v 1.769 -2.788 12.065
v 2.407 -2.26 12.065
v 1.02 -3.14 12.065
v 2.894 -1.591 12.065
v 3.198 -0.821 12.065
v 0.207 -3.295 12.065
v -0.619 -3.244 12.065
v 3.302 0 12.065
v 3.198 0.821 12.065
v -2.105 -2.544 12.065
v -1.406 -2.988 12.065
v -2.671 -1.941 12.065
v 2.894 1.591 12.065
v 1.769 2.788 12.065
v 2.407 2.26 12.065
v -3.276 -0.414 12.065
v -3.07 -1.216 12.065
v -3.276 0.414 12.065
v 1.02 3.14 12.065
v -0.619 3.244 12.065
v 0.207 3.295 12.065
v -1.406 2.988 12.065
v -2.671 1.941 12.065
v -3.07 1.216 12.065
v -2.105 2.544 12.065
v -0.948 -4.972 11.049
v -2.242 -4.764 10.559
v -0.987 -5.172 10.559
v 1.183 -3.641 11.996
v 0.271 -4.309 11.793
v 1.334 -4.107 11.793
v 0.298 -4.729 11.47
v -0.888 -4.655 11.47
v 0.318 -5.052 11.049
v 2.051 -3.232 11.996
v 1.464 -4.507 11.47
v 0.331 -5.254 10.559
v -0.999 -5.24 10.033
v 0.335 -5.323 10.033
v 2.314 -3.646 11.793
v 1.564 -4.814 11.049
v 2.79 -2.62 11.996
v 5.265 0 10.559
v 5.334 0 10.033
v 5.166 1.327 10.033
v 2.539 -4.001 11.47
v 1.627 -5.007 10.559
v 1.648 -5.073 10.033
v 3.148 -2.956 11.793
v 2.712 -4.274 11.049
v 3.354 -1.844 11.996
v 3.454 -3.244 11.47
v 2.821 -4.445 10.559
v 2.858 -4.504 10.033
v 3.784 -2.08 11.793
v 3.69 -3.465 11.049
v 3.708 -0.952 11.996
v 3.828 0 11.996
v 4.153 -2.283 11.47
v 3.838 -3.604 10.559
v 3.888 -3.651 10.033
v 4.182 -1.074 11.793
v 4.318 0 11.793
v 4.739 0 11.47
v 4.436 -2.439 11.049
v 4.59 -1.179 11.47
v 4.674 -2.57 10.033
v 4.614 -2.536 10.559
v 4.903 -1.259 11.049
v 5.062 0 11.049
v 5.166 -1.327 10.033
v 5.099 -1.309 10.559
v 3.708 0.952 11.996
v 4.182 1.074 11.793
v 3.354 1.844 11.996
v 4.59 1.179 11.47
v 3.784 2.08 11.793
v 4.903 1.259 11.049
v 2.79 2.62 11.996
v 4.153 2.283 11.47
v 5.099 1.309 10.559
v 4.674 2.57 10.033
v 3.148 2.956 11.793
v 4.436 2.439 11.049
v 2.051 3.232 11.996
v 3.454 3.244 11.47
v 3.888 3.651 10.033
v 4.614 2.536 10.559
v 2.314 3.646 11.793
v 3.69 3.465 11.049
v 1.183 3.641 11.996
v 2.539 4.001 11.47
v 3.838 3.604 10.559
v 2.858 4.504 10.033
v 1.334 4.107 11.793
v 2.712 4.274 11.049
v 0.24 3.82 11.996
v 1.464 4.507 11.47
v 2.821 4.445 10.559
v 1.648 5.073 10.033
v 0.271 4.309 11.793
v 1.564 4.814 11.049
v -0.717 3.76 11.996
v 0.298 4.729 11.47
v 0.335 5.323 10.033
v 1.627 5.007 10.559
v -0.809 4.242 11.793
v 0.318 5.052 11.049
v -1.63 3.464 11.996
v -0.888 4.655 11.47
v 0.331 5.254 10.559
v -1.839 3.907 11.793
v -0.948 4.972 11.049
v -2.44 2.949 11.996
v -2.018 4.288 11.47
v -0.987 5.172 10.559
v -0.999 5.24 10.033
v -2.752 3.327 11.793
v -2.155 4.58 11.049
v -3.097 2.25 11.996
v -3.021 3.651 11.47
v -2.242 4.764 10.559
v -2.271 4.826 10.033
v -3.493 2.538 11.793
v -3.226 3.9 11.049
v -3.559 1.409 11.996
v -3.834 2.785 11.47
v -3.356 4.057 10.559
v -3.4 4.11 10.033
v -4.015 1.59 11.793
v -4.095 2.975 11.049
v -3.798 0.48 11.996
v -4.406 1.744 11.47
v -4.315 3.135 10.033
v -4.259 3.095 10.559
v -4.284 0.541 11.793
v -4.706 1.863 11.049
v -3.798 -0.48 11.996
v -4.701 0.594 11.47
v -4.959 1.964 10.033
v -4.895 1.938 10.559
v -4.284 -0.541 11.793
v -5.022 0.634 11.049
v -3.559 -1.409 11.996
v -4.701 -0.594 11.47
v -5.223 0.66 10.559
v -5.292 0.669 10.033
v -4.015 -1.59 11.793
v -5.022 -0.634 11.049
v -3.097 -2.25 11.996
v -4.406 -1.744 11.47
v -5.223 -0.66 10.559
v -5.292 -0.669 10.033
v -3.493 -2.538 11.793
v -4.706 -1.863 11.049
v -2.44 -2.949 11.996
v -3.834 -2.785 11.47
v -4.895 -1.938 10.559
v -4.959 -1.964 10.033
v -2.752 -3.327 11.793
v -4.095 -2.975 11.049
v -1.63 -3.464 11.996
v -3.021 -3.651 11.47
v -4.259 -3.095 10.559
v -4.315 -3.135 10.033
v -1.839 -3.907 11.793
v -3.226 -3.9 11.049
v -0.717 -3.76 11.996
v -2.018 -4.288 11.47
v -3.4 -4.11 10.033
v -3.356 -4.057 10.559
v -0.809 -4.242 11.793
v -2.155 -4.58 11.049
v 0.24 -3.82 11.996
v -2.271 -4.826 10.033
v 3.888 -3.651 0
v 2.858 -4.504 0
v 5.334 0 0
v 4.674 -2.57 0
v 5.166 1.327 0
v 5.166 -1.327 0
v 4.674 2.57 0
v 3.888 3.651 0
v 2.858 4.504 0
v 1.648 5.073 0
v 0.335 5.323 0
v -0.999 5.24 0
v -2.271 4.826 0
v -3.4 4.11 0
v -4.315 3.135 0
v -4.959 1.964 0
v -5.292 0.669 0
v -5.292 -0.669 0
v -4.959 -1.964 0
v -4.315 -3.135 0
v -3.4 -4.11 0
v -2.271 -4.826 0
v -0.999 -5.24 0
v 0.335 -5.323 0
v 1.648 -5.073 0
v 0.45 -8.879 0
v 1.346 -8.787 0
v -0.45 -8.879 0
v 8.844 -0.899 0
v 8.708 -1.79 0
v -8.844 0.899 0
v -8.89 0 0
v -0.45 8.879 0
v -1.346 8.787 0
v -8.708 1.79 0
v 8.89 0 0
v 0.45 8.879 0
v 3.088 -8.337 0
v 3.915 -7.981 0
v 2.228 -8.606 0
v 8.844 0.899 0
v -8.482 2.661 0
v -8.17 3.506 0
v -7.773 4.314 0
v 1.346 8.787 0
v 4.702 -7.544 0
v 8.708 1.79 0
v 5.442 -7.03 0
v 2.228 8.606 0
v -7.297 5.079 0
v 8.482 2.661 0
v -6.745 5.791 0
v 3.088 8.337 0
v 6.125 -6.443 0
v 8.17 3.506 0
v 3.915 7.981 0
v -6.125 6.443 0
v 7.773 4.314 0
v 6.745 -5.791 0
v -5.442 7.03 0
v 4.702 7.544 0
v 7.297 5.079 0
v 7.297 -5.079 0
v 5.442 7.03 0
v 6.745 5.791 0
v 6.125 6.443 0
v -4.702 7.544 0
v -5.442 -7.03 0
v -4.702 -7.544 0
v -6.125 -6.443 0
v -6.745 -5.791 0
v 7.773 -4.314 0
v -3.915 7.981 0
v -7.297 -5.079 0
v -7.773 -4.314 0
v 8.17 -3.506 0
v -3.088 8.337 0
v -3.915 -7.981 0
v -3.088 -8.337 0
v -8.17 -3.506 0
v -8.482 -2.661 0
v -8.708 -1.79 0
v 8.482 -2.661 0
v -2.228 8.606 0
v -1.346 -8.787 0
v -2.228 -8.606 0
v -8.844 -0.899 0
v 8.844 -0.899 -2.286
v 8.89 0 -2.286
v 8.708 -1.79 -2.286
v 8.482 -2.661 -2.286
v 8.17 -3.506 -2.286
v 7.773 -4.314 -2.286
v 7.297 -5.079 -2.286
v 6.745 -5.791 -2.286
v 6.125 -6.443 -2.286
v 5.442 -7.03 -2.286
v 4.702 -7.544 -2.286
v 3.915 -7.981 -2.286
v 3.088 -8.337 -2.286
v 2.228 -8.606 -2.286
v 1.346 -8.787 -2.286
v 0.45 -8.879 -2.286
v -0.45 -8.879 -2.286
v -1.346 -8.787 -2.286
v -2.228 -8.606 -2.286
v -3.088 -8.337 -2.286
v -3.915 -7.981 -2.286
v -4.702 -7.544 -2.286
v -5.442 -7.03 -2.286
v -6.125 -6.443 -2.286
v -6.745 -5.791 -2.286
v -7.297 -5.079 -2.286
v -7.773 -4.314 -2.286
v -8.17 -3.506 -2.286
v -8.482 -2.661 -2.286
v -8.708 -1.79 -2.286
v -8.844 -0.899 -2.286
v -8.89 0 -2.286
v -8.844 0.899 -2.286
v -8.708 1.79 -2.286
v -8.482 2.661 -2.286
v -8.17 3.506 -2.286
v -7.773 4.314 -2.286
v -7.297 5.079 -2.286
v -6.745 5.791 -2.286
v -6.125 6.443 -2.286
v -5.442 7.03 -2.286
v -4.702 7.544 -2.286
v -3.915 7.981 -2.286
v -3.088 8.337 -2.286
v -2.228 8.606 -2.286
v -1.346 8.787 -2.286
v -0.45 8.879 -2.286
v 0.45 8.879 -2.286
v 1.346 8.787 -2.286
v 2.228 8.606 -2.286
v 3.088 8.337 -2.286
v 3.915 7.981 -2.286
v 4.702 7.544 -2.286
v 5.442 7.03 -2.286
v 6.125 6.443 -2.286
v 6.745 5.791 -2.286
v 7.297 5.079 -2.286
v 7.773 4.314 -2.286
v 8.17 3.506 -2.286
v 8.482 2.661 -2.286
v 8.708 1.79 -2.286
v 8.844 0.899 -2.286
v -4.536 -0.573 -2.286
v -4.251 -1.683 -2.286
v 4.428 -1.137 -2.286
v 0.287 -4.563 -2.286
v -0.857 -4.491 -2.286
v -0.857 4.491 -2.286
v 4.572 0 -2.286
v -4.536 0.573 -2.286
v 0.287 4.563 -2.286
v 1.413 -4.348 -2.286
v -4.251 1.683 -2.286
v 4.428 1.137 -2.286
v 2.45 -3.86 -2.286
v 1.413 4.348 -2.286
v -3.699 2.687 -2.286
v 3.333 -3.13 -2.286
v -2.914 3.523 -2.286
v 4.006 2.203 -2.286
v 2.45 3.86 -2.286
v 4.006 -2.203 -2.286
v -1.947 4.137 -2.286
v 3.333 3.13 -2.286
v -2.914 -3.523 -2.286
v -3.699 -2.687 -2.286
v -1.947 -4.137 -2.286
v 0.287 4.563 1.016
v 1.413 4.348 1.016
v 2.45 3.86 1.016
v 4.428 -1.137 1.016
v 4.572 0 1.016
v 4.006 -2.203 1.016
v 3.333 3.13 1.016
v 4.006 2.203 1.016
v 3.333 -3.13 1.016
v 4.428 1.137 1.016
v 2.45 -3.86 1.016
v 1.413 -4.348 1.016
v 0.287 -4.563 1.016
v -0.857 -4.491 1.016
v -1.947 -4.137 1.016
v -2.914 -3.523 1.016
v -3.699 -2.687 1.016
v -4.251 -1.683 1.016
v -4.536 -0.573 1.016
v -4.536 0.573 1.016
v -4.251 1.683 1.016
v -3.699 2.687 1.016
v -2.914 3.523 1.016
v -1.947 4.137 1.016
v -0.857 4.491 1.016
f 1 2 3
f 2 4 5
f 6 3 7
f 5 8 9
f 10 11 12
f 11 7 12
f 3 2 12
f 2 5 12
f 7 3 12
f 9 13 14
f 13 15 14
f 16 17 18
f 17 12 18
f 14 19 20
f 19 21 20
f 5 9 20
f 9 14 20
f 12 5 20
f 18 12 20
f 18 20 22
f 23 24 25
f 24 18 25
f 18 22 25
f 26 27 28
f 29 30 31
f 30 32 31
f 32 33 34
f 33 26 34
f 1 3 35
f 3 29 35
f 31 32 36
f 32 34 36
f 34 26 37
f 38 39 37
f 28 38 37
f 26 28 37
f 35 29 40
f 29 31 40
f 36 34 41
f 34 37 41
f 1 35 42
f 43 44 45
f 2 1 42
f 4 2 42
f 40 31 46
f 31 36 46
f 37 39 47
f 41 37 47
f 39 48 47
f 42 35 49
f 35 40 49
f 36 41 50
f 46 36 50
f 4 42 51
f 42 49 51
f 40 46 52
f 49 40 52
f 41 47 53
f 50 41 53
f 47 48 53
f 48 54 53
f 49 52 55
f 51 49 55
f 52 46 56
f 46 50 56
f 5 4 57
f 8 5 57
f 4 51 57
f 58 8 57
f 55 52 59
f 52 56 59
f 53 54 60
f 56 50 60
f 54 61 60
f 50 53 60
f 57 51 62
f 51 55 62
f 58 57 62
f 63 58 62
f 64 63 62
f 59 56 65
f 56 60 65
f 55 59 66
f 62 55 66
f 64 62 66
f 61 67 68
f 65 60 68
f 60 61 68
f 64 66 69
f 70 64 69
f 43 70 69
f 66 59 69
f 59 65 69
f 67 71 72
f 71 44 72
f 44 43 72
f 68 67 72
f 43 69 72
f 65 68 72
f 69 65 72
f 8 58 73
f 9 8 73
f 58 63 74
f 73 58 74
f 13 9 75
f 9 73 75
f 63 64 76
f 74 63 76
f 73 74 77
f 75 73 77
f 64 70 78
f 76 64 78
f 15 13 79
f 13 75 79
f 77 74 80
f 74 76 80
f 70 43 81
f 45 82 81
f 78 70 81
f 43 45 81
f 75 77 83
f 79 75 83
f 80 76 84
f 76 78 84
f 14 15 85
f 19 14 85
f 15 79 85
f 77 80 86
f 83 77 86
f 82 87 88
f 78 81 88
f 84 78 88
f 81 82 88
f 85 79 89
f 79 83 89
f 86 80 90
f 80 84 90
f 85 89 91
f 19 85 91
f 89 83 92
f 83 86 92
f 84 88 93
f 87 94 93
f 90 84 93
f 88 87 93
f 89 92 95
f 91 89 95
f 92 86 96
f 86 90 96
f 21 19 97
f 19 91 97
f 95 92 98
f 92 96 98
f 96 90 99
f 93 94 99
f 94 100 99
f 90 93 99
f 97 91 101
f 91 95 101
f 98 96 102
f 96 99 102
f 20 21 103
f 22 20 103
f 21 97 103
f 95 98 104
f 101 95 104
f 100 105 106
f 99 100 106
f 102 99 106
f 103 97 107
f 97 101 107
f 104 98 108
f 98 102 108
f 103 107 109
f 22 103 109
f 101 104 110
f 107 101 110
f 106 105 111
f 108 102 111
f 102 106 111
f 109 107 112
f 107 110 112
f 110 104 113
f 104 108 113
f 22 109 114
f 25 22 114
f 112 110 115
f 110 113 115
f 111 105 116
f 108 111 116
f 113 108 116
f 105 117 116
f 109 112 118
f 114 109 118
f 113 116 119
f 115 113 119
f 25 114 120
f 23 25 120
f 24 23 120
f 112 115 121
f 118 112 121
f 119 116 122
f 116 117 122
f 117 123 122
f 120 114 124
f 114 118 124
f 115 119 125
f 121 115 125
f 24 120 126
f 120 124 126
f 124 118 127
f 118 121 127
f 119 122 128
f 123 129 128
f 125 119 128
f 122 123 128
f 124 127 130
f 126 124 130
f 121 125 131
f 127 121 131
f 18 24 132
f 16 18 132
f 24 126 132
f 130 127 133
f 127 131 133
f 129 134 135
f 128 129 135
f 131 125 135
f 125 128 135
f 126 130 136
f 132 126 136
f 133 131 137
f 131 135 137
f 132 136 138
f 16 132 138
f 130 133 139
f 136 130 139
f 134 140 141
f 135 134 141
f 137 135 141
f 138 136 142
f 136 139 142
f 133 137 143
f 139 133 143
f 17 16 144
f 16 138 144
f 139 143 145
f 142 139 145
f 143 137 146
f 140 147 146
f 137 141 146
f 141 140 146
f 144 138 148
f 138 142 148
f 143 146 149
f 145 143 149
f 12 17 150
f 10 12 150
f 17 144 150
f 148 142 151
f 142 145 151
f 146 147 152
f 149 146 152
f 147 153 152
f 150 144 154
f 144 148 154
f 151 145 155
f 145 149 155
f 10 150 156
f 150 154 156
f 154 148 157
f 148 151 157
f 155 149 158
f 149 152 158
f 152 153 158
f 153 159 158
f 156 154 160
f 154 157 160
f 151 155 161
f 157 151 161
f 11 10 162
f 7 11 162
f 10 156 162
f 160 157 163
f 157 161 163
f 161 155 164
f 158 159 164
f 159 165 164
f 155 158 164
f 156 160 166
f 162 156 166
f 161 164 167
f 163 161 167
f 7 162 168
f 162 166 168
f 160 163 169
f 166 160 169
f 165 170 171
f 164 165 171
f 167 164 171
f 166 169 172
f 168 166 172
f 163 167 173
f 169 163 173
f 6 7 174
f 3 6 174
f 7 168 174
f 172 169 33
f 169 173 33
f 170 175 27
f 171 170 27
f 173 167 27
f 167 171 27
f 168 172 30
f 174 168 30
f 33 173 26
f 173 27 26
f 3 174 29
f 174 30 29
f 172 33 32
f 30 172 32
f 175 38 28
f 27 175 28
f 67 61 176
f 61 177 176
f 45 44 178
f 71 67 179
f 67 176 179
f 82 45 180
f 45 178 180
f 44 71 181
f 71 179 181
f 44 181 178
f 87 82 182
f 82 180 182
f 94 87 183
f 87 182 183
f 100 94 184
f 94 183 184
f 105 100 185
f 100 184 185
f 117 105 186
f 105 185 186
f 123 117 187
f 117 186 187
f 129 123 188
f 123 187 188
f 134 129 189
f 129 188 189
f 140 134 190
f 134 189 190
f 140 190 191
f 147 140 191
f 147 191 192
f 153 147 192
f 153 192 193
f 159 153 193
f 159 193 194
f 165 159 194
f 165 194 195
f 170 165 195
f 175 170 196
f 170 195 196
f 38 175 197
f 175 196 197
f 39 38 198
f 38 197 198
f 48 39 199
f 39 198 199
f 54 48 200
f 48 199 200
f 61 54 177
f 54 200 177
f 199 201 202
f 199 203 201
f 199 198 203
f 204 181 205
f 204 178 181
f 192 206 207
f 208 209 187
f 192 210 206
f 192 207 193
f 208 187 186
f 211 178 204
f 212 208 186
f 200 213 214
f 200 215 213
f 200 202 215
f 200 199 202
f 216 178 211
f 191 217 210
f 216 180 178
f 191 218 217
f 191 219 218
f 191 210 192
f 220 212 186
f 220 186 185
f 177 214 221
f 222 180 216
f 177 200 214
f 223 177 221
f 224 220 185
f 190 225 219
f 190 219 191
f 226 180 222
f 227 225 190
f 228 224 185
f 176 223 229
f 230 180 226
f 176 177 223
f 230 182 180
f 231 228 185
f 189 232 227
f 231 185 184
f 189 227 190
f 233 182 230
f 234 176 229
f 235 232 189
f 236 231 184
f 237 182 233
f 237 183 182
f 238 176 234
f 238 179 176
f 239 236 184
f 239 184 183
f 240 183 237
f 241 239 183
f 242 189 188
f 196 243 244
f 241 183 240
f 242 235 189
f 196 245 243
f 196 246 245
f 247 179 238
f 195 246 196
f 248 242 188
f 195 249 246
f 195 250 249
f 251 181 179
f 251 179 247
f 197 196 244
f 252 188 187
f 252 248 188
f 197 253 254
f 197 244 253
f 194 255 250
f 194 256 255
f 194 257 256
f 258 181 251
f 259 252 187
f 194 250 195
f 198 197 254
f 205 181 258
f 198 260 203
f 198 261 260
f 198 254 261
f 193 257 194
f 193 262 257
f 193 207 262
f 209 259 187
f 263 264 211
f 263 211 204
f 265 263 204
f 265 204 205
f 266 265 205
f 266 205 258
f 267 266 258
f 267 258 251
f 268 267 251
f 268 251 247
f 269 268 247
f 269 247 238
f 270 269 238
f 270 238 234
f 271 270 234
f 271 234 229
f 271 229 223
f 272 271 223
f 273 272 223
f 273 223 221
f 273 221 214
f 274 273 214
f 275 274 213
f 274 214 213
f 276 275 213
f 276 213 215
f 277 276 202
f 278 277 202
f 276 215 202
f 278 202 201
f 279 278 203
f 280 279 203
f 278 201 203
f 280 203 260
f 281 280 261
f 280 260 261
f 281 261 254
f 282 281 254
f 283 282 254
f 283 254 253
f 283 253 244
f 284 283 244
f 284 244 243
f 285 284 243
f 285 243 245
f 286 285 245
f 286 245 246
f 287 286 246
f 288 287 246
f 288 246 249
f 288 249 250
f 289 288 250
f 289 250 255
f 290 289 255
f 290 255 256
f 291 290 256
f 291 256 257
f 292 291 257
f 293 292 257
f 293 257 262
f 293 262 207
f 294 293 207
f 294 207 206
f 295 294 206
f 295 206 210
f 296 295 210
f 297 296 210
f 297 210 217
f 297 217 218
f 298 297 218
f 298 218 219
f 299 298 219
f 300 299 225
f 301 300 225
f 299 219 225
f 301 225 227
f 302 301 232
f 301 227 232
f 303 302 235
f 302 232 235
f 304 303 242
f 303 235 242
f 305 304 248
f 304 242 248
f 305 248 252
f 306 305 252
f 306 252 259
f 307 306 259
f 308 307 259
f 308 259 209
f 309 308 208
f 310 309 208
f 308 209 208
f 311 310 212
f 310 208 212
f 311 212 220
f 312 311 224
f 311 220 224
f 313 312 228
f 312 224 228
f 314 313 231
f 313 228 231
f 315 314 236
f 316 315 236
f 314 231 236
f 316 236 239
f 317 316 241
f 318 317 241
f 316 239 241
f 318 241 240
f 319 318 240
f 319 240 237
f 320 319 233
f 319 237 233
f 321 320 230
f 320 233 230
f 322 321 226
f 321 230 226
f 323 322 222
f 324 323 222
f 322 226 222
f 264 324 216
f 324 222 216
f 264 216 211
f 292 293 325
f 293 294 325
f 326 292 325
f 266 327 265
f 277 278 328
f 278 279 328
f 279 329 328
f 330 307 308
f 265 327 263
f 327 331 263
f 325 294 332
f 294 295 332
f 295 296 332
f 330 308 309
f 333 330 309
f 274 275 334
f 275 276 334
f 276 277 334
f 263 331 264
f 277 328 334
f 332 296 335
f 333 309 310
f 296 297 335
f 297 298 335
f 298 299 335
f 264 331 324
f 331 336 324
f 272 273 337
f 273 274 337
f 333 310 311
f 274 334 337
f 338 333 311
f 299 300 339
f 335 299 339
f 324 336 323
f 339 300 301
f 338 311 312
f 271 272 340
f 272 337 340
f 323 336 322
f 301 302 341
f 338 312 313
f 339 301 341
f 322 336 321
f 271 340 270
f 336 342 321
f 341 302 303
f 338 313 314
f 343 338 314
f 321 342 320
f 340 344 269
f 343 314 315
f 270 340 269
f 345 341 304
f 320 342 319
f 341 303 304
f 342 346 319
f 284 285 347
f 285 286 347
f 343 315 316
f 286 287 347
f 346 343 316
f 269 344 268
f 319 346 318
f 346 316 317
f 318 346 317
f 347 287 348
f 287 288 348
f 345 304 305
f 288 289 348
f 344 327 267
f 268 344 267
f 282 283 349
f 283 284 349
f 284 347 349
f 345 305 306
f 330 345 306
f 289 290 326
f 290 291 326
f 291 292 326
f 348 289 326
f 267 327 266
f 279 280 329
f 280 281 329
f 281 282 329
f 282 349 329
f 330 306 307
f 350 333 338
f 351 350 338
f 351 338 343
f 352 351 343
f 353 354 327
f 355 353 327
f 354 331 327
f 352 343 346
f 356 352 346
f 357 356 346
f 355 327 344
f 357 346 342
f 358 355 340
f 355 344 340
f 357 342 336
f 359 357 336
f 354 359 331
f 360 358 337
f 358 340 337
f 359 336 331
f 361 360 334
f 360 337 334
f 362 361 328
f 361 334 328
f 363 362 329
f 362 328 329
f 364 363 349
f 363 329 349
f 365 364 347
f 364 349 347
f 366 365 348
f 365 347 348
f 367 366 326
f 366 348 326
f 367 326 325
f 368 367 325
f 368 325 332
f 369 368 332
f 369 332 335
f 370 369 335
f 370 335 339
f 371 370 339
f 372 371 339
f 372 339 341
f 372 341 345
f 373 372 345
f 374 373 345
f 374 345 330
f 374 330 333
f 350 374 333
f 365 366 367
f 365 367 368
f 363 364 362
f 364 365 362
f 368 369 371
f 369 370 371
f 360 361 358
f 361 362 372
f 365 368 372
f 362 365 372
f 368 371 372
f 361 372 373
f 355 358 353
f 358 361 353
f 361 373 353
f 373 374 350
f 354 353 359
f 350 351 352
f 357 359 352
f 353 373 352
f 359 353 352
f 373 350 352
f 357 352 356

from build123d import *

# Parameters (mm, degrees)
SKETCH_R     = 5.334
PAD_DEPTH    = 12.065
SKETCH001_R  = 8.89
PAD001_DEPTH = 2.286
SKETCH002_R  = 4.572
POCKET_DEPTH = 3.302
FILLET_R     = 2.032


with BuildPart() as part:
    # Sketch → Pad (new body)
    with BuildSketch(Plane.XY):
        Circle(SKETCH_R)
    extrude(amount=PAD_DEPTH)

    # Sketch001 → Pad001 (new body)
    with BuildSketch(Plane(origin=(0, 0, 0), x_dir=(1, 0, 0), z_dir=(0, 0, -1))):
        Circle(SKETCH001_R)
    extrude(amount=PAD001_DEPTH)

    # Sketch002 → Pocket (cut)
    with BuildSketch(Plane(origin=(0, 0, -2.286), x_dir=(1, 0, 0), z_dir=(0, 0, -1))):
        Circle(SKETCH002_R)
    extrude(amount=-POCKET_DEPTH, mode=Mode.SUBTRACT)

    # Fillet
    fillet_edges = [part.edges().sort_by_distance(p)[0] for p in [
        (-5.334, 0, 12.065),
    ]]
    fillet(fillet_edges, radius=FILLET_R)


solid = part.part
